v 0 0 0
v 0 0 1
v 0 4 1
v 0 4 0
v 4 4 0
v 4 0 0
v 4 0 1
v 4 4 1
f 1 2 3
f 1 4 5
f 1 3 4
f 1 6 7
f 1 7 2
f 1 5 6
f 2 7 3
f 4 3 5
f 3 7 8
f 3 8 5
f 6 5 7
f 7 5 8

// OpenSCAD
/* Warning, this is a very basic generator with a lot of approximation 
input data : [VQFN, LWC, 4x4x1mm, 20, , A, C04-25395A]
generated by com.zoubworld.electronics.cad.model3d.Basic
Date : Sun Feb 15 10:50:49 CET 2026
*/

//body
color("black")
translate([0,0,0])
cube([4.0,4.0,1.0], center=false);
